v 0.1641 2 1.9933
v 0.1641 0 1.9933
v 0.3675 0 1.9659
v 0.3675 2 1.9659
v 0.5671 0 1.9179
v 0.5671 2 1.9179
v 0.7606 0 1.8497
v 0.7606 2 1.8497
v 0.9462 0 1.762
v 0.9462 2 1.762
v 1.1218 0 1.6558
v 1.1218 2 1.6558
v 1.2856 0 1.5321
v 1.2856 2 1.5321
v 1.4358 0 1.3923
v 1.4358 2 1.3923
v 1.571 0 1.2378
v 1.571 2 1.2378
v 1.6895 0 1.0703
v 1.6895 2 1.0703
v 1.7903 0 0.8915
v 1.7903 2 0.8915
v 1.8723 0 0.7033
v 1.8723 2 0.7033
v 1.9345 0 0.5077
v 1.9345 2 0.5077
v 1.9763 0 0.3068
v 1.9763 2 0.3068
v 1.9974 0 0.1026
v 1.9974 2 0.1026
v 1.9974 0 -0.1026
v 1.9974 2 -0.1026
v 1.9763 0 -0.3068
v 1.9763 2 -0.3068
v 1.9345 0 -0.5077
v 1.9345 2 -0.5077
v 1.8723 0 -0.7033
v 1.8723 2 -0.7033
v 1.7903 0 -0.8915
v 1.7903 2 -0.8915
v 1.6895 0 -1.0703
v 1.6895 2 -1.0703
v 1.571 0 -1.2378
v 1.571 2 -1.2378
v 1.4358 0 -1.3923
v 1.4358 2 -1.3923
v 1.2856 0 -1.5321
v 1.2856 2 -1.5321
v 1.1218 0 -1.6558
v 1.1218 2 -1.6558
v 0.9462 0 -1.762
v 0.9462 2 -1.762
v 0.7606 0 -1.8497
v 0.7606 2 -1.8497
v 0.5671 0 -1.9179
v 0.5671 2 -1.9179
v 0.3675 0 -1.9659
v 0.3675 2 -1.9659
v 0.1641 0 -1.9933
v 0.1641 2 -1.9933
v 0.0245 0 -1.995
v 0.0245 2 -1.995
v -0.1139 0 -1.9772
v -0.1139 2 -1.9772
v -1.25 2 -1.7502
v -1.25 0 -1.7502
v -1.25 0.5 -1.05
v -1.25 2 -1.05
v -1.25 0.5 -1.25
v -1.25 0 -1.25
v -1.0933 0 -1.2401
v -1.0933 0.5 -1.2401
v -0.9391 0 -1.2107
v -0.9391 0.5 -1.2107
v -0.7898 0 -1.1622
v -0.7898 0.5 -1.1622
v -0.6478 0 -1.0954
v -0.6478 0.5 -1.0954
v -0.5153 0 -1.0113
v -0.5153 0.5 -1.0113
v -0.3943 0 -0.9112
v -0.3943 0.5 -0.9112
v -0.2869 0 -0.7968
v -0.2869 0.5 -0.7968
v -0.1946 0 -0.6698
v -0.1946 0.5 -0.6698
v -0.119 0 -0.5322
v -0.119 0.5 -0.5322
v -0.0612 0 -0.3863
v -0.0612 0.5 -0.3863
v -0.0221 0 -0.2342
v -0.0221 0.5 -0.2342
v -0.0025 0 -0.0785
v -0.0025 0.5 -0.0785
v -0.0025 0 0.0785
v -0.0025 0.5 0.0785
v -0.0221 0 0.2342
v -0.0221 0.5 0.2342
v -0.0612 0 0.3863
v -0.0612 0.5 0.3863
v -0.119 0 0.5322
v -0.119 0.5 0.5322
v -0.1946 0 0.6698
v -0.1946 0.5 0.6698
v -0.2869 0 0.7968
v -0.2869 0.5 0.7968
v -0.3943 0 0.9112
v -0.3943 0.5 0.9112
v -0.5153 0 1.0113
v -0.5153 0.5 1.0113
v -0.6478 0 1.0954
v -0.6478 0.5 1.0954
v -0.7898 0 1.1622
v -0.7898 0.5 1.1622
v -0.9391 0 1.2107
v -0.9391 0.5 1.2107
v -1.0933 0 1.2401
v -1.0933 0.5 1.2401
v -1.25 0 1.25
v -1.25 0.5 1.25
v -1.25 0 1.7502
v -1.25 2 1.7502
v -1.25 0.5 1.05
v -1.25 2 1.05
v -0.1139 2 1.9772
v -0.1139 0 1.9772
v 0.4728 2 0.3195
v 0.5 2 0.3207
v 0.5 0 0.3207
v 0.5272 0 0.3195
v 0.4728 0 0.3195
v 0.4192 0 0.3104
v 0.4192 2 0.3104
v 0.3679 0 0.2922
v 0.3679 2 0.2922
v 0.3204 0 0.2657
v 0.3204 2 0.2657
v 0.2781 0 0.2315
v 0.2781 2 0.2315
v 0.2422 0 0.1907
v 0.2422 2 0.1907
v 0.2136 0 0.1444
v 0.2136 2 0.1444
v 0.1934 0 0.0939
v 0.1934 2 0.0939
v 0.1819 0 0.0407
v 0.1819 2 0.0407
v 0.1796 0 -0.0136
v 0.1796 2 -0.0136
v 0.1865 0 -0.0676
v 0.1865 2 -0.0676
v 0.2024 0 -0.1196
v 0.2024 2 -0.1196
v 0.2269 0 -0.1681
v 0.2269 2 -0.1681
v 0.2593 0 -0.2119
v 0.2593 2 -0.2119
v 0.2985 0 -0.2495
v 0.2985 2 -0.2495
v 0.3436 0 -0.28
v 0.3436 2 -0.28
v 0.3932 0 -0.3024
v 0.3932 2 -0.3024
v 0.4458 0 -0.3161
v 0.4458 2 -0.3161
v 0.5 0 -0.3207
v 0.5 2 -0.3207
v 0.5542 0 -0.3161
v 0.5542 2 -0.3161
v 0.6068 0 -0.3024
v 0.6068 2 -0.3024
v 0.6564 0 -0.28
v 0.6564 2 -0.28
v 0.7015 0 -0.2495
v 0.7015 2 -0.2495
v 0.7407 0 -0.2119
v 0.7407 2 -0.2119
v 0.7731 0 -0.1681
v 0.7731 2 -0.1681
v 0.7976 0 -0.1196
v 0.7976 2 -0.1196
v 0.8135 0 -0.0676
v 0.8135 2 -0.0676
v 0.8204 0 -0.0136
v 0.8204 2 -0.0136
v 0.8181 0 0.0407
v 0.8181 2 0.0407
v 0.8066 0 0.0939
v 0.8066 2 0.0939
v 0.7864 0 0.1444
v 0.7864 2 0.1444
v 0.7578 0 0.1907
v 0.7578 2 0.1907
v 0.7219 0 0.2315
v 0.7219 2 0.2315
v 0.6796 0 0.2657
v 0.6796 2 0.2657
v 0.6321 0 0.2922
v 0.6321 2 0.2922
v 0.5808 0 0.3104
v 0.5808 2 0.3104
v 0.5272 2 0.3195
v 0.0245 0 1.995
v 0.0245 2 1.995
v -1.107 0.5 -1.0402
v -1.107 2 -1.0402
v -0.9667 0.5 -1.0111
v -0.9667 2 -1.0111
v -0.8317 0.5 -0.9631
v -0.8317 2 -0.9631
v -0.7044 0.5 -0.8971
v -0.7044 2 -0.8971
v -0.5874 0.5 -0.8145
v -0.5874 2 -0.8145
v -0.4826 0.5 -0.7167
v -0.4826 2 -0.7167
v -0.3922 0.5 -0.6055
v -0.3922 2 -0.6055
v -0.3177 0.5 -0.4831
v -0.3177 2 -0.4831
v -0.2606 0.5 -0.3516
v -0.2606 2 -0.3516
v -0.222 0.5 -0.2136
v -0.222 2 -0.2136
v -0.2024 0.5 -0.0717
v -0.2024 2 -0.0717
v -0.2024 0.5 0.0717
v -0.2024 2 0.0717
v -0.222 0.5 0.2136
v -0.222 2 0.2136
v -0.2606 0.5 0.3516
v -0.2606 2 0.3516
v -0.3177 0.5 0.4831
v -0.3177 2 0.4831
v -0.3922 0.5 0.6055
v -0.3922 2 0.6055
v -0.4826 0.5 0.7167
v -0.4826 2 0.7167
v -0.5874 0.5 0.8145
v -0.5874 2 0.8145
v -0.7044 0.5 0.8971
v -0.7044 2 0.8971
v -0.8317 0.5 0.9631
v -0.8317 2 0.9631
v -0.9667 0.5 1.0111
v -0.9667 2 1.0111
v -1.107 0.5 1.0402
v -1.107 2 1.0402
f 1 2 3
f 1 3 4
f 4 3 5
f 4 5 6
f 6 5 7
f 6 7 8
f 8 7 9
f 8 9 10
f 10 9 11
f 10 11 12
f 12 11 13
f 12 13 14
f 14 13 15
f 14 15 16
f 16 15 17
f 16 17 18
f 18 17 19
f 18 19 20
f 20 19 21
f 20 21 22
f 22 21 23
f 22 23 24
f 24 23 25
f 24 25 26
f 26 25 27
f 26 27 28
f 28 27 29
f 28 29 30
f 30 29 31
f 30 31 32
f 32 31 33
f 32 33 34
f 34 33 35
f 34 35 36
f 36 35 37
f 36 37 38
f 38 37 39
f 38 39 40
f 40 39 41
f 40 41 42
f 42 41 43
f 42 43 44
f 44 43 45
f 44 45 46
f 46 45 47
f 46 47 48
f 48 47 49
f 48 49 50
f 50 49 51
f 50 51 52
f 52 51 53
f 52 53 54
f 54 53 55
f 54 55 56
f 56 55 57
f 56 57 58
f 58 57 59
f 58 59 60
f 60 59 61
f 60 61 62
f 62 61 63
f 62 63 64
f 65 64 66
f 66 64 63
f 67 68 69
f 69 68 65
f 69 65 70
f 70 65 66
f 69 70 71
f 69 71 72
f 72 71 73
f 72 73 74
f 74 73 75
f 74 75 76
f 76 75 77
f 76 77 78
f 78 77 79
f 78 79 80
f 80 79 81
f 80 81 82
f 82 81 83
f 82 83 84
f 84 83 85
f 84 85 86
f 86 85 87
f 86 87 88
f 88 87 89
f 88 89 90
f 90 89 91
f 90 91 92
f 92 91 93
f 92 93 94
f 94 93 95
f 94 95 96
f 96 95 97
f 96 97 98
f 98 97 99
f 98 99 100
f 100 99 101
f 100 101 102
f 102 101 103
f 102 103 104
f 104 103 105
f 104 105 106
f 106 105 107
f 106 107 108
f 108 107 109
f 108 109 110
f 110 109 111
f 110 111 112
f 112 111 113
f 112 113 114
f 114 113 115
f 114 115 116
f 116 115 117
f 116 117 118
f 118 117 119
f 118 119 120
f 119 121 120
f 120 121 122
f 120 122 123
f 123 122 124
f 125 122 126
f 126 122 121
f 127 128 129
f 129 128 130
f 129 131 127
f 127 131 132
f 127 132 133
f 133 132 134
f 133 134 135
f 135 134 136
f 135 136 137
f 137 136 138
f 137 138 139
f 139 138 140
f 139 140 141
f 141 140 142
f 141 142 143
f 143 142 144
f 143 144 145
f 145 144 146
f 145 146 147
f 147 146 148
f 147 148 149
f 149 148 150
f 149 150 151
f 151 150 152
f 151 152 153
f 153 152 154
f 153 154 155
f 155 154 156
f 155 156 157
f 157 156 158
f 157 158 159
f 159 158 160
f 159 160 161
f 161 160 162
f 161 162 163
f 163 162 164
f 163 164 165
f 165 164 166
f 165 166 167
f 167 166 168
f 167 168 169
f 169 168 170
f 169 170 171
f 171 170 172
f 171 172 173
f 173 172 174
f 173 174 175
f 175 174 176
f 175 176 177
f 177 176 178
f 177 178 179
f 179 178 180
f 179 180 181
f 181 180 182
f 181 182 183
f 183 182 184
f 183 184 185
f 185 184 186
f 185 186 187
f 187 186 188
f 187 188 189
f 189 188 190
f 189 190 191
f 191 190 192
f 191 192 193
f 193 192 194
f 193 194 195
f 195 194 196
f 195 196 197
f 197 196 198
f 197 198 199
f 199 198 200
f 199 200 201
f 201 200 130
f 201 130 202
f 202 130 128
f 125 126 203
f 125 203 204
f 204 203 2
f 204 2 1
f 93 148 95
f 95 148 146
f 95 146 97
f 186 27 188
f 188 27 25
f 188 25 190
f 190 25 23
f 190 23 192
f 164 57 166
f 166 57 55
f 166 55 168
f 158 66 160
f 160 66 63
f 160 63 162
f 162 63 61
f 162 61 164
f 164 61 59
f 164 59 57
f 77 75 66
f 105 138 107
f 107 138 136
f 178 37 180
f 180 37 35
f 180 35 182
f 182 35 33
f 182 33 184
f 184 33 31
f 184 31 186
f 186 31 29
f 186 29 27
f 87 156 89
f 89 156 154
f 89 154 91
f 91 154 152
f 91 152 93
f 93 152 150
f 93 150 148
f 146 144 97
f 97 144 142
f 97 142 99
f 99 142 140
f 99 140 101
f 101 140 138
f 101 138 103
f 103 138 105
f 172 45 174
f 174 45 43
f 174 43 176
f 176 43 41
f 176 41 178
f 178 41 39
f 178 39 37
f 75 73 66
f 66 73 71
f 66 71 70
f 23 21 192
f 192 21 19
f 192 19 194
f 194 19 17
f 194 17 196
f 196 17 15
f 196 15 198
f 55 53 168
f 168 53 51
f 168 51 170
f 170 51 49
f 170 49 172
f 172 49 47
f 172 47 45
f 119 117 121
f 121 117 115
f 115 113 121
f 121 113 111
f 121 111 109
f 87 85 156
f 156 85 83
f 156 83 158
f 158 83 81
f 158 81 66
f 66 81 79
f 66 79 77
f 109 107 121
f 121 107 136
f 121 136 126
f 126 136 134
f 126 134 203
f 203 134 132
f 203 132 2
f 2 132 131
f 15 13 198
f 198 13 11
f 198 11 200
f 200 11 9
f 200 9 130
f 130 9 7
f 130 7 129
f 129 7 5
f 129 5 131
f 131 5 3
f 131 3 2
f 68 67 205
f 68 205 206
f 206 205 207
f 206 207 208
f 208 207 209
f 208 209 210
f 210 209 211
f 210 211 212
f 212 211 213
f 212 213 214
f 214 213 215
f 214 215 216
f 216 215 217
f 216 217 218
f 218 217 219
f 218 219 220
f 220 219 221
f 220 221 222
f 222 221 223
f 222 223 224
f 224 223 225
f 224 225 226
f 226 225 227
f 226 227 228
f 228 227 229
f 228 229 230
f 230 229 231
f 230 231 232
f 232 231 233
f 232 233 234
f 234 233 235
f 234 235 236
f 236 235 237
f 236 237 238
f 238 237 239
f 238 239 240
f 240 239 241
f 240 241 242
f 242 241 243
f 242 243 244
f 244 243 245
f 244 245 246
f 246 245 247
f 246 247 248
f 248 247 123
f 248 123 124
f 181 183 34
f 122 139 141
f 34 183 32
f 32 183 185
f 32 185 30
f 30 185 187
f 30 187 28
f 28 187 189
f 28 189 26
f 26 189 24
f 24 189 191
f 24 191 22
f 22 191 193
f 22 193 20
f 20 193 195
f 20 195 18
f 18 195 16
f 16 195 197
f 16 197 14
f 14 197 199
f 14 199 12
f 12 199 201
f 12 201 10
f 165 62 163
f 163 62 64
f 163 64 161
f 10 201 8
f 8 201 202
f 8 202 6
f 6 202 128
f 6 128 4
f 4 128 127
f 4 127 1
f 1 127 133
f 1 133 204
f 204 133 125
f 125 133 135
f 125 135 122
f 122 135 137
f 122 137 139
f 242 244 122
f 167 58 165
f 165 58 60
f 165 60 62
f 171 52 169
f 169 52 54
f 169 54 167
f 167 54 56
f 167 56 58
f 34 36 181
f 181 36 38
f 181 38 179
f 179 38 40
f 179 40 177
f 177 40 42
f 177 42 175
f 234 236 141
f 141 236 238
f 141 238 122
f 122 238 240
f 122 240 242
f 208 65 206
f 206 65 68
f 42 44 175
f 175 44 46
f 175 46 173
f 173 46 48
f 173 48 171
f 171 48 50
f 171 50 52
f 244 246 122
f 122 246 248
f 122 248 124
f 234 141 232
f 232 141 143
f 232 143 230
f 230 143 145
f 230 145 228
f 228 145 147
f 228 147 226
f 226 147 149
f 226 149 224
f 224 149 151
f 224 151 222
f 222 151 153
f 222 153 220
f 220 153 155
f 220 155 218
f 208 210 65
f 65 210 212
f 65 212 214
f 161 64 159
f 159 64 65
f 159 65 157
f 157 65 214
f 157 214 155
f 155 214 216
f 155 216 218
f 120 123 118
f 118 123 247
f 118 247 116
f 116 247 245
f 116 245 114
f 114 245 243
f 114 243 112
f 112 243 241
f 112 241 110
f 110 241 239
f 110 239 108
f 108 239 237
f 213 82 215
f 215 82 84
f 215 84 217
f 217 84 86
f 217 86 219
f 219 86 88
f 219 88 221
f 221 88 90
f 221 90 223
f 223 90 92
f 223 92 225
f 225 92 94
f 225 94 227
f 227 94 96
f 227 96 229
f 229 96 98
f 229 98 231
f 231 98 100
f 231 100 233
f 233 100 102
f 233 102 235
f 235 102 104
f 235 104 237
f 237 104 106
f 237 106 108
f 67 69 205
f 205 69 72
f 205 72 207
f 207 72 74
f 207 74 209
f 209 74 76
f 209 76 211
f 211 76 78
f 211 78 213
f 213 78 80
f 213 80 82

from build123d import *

# Parameters (mm, degrees)
SKETCH1_R           = 0.3207
BOSS_EXTRUDE1_DEPTH = 0.5
BOSS_EXTRUDE2_START = 0.5
SKETCH1_20_R        = 0.3207
BOSS_EXTRUDE2_DEPTH = 1.5


with BuildPart() as part:
    # Sketch1 → Boss-Extrude1 (new body)
    with BuildSketch(Plane(origin=(0, 0, 0), x_dir=(1, 0, 0), z_dir=(0, 1, 0))):
        with BuildLine():
            ThreePointArc((0.164100898, 1.993256355), (0.024548564, 1.994973575), (-0.11388376, 1.977245221))
            Line((-0.11388376, 1.977245221), (-1.25, 1.750241174))
            Line((-1.25, 1.750241174), (-1.25, 1.25))
            ThreePointArc((-1.25, 1.25), (-0.366116524, 0.883883476), (0, 0))
            ThreePointArc((0, 0), (-0.366116524, -0.883883476), (-1.25, -1.25))
            Line((-1.25, -1.25), (-1.25, -1.750241174))
            Line((-1.25, -1.750241174), (-0.11388376, -1.977245221))
            ThreePointArc((-0.11388376, -1.977245221), (0.024548564, -1.994973575), (0.164100898, -1.993256355))
            ThreePointArc((0.164100898, -1.993256355), (2, 0), (0.164100898, 1.993256355))
        make_face()
        with Locations((0.5, 0)):
            Circle(SKETCH1_R, mode=Mode.SUBTRACT)
    extrude(amount=BOSS_EXTRUDE1_DEPTH)

    # Sketch1<20> → Boss-Extrude2 (add)
    with BuildSketch(Plane(origin=(0, 0, 0), x_dir=(1, 0, 0), z_dir=(0, 1, 0)).offset(BOSS_EXTRUDE2_START)):
        with BuildLine():
            ThreePointArc((0.164100898, 1.993256355), (0.024548564, 1.994973575), (-0.11388376, 1.977245221))
            Line((-0.11388376, 1.977245221), (-1.25, 1.750241174))
            Line((-1.25, 1.750241174), (-1.25, 1.05))
            ThreePointArc((-1.25, 1.05), (-0.2, 0), (-1.25, -1.05))
            Line((-1.25, -1.05), (-1.25, -1.750241174))
            Line((-1.25, -1.750241174), (-0.11388376, -1.977245221))
            ThreePointArc((-0.11388376, -1.977245221), (0.024548564, -1.994973575), (0.164100898, -1.993256355))
            ThreePointArc((0.164100898, -1.993256355), (2, 0), (0.164100898, 1.993256355))
        make_face()
        with Locations((0.5, 0)):
            Circle(SKETCH1_20_R, mode=Mode.SUBTRACT)
    extrude(amount=BOSS_EXTRUDE2_DEPTH)


solid = part.part
